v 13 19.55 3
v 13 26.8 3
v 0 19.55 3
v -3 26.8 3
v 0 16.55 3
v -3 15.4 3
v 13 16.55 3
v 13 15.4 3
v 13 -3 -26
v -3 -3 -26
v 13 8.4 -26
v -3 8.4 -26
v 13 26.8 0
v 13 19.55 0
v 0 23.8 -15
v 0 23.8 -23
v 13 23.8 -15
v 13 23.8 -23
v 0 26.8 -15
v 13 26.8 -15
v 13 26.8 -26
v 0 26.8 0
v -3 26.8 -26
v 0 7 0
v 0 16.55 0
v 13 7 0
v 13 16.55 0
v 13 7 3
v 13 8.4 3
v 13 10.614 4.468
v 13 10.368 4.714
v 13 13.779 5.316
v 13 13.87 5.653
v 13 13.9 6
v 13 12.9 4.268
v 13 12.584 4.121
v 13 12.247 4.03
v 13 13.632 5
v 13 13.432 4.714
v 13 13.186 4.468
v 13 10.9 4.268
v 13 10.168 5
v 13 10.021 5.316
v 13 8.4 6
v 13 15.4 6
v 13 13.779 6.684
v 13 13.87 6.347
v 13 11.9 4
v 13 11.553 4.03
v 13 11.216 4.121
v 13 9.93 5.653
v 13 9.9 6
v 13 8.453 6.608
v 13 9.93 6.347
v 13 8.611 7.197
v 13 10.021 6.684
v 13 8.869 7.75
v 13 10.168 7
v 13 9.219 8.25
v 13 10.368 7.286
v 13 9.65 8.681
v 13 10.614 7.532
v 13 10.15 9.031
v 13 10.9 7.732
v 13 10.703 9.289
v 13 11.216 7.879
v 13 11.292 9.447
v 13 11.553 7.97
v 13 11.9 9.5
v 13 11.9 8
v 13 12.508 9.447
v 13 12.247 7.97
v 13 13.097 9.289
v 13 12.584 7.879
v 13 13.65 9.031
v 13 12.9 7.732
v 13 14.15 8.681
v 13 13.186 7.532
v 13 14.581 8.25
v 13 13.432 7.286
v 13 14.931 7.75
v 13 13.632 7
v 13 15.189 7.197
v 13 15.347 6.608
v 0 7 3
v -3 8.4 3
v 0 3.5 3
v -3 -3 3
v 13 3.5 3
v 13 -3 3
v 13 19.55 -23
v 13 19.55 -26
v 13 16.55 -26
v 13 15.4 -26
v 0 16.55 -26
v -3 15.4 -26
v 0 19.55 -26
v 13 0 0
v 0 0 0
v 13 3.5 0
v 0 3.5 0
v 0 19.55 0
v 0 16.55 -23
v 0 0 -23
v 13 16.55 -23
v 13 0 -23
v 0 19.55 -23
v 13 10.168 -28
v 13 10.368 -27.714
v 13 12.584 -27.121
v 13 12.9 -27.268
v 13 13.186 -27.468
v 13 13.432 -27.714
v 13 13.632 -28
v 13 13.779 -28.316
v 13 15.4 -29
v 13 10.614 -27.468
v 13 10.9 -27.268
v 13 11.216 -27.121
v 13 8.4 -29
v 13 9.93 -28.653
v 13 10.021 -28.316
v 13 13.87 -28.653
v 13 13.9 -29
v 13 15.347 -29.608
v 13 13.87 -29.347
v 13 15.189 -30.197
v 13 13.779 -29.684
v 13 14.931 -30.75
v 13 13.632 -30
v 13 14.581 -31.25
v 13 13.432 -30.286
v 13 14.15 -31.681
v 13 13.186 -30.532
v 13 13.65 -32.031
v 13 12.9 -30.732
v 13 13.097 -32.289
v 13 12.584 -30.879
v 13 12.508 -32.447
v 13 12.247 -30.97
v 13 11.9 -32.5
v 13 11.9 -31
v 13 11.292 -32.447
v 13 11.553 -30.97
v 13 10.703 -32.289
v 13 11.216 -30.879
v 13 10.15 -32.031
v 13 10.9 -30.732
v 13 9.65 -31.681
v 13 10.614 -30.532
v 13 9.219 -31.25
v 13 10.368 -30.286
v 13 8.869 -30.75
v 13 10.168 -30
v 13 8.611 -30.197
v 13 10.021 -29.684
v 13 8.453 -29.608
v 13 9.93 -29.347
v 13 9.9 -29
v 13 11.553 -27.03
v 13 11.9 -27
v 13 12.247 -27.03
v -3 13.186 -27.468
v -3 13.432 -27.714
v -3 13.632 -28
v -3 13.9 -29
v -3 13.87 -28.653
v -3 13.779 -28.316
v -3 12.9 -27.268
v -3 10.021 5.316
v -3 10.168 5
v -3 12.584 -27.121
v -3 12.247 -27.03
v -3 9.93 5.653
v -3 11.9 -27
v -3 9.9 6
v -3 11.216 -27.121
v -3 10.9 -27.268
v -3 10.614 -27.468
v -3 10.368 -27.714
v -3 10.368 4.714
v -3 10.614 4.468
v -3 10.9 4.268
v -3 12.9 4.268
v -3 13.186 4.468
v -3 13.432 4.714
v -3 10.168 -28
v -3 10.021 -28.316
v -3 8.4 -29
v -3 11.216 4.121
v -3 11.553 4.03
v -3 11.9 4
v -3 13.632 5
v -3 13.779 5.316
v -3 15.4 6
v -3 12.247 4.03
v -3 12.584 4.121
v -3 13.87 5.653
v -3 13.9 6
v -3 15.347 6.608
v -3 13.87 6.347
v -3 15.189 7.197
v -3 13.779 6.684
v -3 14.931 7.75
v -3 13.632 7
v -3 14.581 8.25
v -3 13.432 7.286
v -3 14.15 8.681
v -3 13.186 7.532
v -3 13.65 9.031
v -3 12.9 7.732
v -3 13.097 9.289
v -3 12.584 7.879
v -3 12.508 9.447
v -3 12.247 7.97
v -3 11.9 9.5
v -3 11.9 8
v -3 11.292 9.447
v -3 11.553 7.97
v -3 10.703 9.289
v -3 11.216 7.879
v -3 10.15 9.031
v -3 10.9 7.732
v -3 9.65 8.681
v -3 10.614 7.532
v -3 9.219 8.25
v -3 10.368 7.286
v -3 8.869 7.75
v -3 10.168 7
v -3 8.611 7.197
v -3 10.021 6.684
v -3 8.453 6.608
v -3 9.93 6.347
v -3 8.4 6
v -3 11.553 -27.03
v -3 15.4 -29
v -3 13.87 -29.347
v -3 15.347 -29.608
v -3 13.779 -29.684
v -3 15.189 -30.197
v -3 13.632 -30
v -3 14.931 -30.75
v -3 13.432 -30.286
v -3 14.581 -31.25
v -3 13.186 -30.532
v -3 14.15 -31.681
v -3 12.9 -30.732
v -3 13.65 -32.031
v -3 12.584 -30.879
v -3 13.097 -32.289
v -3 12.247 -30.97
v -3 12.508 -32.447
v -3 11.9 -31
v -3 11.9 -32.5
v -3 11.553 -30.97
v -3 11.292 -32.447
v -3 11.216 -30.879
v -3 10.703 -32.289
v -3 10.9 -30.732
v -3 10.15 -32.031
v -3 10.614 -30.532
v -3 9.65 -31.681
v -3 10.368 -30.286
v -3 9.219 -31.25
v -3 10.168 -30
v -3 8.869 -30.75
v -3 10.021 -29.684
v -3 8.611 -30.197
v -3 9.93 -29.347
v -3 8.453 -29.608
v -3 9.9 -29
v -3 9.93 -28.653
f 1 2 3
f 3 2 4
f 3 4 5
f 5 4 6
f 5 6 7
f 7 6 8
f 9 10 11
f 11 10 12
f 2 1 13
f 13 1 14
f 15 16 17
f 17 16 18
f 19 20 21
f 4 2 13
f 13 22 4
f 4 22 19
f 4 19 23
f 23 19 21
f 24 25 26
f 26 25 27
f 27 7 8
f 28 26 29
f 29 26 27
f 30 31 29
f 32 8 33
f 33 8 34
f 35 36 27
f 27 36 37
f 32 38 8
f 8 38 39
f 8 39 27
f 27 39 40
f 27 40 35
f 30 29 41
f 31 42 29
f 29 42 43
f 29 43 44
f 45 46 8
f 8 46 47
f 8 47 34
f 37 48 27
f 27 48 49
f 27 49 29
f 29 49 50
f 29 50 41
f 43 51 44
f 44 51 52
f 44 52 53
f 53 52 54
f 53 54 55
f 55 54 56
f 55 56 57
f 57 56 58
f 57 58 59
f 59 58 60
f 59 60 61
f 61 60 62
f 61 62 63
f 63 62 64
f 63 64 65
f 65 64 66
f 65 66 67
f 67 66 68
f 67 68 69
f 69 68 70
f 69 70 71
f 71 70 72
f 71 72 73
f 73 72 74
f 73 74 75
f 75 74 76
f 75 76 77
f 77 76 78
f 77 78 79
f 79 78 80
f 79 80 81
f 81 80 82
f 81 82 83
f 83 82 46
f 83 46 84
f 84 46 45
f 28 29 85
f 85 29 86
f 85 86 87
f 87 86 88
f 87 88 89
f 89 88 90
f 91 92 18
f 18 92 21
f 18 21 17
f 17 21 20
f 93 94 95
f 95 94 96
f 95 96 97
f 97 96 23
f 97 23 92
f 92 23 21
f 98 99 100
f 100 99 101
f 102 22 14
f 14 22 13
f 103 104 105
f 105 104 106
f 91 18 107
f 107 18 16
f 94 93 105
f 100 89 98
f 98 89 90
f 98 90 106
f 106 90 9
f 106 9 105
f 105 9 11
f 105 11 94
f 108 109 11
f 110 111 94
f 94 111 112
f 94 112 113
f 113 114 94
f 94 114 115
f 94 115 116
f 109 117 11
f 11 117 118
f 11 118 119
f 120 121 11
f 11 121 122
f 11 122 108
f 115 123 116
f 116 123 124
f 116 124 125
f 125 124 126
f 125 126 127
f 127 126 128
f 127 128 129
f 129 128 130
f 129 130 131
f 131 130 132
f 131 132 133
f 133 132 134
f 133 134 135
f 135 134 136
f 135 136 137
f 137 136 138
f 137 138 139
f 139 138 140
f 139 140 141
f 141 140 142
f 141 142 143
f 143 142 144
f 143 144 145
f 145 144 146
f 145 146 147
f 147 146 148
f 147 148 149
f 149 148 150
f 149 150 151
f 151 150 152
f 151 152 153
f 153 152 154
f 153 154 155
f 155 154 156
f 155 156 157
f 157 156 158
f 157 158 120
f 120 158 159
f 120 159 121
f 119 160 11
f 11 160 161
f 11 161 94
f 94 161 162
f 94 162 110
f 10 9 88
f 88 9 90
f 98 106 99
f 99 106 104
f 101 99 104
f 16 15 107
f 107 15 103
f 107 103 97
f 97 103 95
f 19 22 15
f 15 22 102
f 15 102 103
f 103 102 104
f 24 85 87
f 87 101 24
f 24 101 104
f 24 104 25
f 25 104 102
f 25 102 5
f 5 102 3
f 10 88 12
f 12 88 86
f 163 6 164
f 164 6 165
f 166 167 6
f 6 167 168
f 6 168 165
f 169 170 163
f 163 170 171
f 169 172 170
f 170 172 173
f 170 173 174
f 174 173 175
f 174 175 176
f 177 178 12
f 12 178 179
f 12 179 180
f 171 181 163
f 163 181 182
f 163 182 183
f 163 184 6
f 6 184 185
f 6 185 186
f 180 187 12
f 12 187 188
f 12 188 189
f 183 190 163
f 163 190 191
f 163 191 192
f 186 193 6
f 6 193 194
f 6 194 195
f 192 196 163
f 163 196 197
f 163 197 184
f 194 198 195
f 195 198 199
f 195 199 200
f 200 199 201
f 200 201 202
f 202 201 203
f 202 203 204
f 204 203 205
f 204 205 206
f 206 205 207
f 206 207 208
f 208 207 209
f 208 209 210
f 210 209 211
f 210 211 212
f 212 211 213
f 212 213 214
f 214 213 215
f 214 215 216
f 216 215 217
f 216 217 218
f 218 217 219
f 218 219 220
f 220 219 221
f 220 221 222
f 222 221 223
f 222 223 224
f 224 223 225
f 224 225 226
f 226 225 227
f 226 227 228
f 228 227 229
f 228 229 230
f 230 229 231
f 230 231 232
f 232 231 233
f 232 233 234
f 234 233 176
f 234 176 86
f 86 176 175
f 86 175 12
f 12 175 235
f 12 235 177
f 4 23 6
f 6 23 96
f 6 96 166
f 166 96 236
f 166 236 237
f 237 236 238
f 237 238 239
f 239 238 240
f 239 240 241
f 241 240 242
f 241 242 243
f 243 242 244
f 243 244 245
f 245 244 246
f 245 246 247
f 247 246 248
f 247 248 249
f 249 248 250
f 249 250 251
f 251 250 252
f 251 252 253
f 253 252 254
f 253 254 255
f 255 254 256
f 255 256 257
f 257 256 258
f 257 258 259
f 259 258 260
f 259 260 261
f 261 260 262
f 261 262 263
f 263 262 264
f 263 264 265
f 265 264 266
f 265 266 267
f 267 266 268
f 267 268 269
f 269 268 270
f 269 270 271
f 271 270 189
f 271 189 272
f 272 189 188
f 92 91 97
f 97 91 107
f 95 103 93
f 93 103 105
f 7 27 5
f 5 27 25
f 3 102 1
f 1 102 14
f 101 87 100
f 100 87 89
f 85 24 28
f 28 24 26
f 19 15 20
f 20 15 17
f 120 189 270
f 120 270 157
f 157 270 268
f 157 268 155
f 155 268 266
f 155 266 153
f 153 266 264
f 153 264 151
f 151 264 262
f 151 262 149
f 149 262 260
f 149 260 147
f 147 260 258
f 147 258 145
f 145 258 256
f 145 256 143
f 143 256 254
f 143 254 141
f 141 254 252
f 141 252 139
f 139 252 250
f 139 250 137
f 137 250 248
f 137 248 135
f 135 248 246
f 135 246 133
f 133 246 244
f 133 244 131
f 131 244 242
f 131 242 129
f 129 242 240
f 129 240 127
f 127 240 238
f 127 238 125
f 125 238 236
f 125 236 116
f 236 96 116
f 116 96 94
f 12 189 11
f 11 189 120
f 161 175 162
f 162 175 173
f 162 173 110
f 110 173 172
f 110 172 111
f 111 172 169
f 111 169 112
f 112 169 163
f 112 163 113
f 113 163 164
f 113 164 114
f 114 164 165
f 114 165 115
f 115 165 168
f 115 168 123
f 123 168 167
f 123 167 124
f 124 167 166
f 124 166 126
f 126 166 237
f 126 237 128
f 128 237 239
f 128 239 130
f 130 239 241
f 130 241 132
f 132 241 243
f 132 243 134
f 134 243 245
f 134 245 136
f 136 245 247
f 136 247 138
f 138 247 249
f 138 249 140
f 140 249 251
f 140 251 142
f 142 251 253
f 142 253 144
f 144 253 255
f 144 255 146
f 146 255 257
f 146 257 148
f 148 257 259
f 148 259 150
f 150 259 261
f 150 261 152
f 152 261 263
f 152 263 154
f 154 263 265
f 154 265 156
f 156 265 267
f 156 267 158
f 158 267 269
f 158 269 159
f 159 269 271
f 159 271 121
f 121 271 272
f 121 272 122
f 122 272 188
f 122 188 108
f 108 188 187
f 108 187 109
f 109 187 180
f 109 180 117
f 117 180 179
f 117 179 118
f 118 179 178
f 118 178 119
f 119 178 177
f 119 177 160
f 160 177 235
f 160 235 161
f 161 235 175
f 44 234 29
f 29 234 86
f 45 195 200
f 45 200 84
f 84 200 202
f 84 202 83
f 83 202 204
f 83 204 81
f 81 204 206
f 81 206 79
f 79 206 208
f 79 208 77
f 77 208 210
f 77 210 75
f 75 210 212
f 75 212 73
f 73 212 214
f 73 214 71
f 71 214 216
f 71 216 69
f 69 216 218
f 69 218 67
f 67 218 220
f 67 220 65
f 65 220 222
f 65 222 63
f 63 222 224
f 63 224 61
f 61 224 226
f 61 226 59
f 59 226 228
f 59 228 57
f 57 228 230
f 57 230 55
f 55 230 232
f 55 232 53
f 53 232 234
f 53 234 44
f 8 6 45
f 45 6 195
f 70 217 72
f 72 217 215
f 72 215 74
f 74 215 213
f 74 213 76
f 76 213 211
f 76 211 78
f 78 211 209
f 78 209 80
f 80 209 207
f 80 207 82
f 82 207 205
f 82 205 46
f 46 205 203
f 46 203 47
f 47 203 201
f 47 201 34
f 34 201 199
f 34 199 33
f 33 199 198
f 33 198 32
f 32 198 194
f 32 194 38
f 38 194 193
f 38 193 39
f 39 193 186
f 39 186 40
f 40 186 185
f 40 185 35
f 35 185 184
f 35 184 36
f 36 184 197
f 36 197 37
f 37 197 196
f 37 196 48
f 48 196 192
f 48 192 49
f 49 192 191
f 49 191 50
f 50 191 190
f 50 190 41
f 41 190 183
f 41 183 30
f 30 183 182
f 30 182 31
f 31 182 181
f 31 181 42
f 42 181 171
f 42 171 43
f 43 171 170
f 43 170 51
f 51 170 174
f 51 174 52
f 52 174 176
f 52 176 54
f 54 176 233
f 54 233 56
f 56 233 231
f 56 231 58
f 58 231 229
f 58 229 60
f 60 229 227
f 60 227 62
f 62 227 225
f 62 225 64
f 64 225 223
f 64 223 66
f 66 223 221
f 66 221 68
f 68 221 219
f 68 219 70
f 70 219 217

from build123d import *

# Parameters (mm, degrees)
SKETCH1_W                = 29
SKETCH1_H                = 29.8
SKETCH1_W_2              = 23
SKETCH1_H_2              = 23.8
SIDES_DEPTH              = 13
SKETCH2_W                = 29
SKETCH2_H                = 29.8
BASE_DEPTH               = 3
SKETCH3_W                = 29
SKETCH3_H                = 3
SERVO_WING_SLOTS_DEPTH   = 13
SKETCH4_W                = 3
SKETCH4_H                = 3.5
SERVO_WIRE_SLOT_DEPTH    = 13
SKETCH5_W                = 15
SKETCH5_H                = 3
SERVO_HEAD_OPENING_DEPTH = 13
MOUNT_REACH              = 41.538
SKETCH6_R                = 2
MOUNT_DIRECTION_2_REACH  = 41.538


with BuildPart() as part:
    # Sketch1 → sides (new body)
    with BuildSketch(Plane(origin=(0, 0, 0), x_dir=(0, 0, -1), z_dir=(1, 0, 0))):
        with Locations((11.5, 11.9)):
            Rectangle(SKETCH1_W, SKETCH1_H)
        with Locations((11.5, 11.9)):
            Rectangle(SKETCH1_W_2, SKETCH1_H_2, mode=Mode.SUBTRACT)
    extrude(amount=SIDES_DEPTH)

    # Sketch2 → base (add)
    with BuildSketch(Plane(origin=(0, 0, 0), x_dir=(0, 0, -1), z_dir=(1, 0, 0))):
        with Locations((11.5, 11.9)):
            Rectangle(SKETCH2_W, SKETCH2_H)
    extrude(amount=-BASE_DEPTH)

    # Sketch3 → servo wing slots (cut)
    with BuildSketch(Plane(origin=(0, 0, 0), x_dir=(0, 0, -1), z_dir=(1, 0, 0))):
        with Locations((11.5, 18.05)):
            Rectangle(SKETCH3_W, SKETCH3_H)
    extrude(amount=SERVO_WING_SLOTS_DEPTH, mode=Mode.SUBTRACT)

    # Sketch4 → servo wire slot (cut)
    with BuildSketch(Plane(origin=(0, 0, 0), x_dir=(0, 0, -1), z_dir=(1, 0, 0))):
        with Locations((-1.5, 5.25)):
            Rectangle(SKETCH4_W, SKETCH4_H)
    extrude(amount=SERVO_WIRE_SLOT_DEPTH, mode=Mode.SUBTRACT)

    # Sketch5 → servo head opening (cut)
    with BuildSketch(Plane(origin=(0, 0, 0), x_dir=(0, 0, -1), z_dir=(1, 0, 0))):
        with Locations((7.5, 25.3)):
            Rectangle(SKETCH5_W, SKETCH5_H)
    extrude(amount=SERVO_HEAD_OPENING_DEPTH, mode=Mode.SUBTRACT)

    # mount: up to this face of the body (flat: up to its plane)
    mount_end = Plane(part.part.faces().sort_by_distance((13, 11.775, 1.5))[0])
    # Sketch6 → mount (add, up to the picked face)
    with BuildSketch(Plane(origin=(0, 0, 0), x_dir=(0, 0, -1), z_dir=(1, 0, 0)), mode=Mode.PRIVATE) as mount_sk1:
        with BuildLine():
            Line((-6, 15.4), (-3, 15.4))
            Line((-3, 15.4), (-3, 8.4))
            Line((-3, 8.4), (-6, 8.4))
            ThreePointArc((-6, 8.4), (-9.5, 11.9), (-6, 15.4))
        make_face()
        with Locations(Location((-6, 11.9, 0), (0, 0, 180))):
            Circle(SKETCH6_R, mode=Mode.SUBTRACT)
    mount_tool1 = split(extrude(mount_sk1.sketch, amount=MOUNT_REACH, mode=Mode.PRIVATE), bisect_by=mount_end, keep=Keep.BOTH, mode=Mode.PRIVATE)
    # Sketch6 → mount (add, up to the picked face)
    with BuildSketch(Plane(origin=(0, 0, 0), x_dir=(0, 0, -1), z_dir=(1, 0, 0)), mode=Mode.PRIVATE) as mount_sk2:
        with BuildLine():
            Line((29, 15.4), (26, 15.4))
            Line((26, 15.4), (26, 8.4))
            Line((26, 8.4), (29, 8.4))
            ThreePointArc((29, 8.4), (32.5, 11.9), (29, 15.4))
        make_face()
        with Locations(Location((29, 11.9, 0), (0, 0, 180))):
            Circle(SKETCH6_R, mode=Mode.SUBTRACT)
    mount_tool2 = split(extrude(mount_sk2.sketch, amount=MOUNT_REACH, mode=Mode.PRIVATE), bisect_by=mount_end, keep=Keep.BOTH, mode=Mode.PRIVATE)
    add(mount_tool1.solids().sort_by(Axis((0, 15.304475, 4.5), (1, 0, 0)))[0])
    add(mount_tool2.solids().sort_by(Axis((0, 11.9, -32.404475), (1, 0, 0)))[0])

    # mount direction 2: up to this face of the body (flat: up to its plane)
    mount_direction_2_end = Plane(part.part.faces().sort_by_distance((-3, 11.9, -11.5))[0])
    # Sketch6 → mount direction 2 (add, up to the picked face)
    with BuildSketch(Plane(origin=(0, 0, 0), x_dir=(0, 0, -1), z_dir=(1, 0, 0)), mode=Mode.PRIVATE) as mount_direction_2_sk1:
        with BuildLine():
            Line((-6, 15.4), (-3, 15.4))
            Line((-3, 15.4), (-3, 8.4))
            Line((-3, 8.4), (-6, 8.4))
            ThreePointArc((-6, 8.4), (-9.5, 11.9), (-6, 15.4))
        make_face()
        with Locations(Location((-6, 11.9, 0), (0, 0, 180))):
            Circle(SKETCH6_R, mode=Mode.SUBTRACT)
    mount_direction_2_tool1 = split(extrude(mount_direction_2_sk1.sketch, amount=-MOUNT_DIRECTION_2_REACH, mode=Mode.PRIVATE), bisect_by=mount_direction_2_end, keep=Keep.BOTH, mode=Mode.PRIVATE)
    # Sketch6 → mount direction 2 (add, up to the picked face)
    with BuildSketch(Plane(origin=(0, 0, 0), x_dir=(0, 0, -1), z_dir=(1, 0, 0)), mode=Mode.PRIVATE) as mount_direction_2_sk2:
        with BuildLine():
            Line((29, 15.4), (26, 15.4))
            Line((26, 15.4), (26, 8.4))
            Line((26, 8.4), (29, 8.4))
            ThreePointArc((29, 8.4), (32.5, 11.9), (29, 15.4))
        make_face()
        with Locations(Location((29, 11.9, 0), (0, 0, 180))):
            Circle(SKETCH6_R, mode=Mode.SUBTRACT)
    mount_direction_2_tool2 = split(extrude(mount_direction_2_sk2.sketch, amount=-MOUNT_DIRECTION_2_REACH, mode=Mode.PRIVATE), bisect_by=mount_direction_2_end, keep=Keep.BOTH, mode=Mode.PRIVATE)
    add(mount_direction_2_tool1.solids().sort_by(Axis((0, 15.304475, 4.5), (-1, 0, 0)))[0])
    add(mount_direction_2_tool2.solids().sort_by(Axis((0, 11.9, -32.404475), (-1, 0, 0)))[0])


solid = part.part
